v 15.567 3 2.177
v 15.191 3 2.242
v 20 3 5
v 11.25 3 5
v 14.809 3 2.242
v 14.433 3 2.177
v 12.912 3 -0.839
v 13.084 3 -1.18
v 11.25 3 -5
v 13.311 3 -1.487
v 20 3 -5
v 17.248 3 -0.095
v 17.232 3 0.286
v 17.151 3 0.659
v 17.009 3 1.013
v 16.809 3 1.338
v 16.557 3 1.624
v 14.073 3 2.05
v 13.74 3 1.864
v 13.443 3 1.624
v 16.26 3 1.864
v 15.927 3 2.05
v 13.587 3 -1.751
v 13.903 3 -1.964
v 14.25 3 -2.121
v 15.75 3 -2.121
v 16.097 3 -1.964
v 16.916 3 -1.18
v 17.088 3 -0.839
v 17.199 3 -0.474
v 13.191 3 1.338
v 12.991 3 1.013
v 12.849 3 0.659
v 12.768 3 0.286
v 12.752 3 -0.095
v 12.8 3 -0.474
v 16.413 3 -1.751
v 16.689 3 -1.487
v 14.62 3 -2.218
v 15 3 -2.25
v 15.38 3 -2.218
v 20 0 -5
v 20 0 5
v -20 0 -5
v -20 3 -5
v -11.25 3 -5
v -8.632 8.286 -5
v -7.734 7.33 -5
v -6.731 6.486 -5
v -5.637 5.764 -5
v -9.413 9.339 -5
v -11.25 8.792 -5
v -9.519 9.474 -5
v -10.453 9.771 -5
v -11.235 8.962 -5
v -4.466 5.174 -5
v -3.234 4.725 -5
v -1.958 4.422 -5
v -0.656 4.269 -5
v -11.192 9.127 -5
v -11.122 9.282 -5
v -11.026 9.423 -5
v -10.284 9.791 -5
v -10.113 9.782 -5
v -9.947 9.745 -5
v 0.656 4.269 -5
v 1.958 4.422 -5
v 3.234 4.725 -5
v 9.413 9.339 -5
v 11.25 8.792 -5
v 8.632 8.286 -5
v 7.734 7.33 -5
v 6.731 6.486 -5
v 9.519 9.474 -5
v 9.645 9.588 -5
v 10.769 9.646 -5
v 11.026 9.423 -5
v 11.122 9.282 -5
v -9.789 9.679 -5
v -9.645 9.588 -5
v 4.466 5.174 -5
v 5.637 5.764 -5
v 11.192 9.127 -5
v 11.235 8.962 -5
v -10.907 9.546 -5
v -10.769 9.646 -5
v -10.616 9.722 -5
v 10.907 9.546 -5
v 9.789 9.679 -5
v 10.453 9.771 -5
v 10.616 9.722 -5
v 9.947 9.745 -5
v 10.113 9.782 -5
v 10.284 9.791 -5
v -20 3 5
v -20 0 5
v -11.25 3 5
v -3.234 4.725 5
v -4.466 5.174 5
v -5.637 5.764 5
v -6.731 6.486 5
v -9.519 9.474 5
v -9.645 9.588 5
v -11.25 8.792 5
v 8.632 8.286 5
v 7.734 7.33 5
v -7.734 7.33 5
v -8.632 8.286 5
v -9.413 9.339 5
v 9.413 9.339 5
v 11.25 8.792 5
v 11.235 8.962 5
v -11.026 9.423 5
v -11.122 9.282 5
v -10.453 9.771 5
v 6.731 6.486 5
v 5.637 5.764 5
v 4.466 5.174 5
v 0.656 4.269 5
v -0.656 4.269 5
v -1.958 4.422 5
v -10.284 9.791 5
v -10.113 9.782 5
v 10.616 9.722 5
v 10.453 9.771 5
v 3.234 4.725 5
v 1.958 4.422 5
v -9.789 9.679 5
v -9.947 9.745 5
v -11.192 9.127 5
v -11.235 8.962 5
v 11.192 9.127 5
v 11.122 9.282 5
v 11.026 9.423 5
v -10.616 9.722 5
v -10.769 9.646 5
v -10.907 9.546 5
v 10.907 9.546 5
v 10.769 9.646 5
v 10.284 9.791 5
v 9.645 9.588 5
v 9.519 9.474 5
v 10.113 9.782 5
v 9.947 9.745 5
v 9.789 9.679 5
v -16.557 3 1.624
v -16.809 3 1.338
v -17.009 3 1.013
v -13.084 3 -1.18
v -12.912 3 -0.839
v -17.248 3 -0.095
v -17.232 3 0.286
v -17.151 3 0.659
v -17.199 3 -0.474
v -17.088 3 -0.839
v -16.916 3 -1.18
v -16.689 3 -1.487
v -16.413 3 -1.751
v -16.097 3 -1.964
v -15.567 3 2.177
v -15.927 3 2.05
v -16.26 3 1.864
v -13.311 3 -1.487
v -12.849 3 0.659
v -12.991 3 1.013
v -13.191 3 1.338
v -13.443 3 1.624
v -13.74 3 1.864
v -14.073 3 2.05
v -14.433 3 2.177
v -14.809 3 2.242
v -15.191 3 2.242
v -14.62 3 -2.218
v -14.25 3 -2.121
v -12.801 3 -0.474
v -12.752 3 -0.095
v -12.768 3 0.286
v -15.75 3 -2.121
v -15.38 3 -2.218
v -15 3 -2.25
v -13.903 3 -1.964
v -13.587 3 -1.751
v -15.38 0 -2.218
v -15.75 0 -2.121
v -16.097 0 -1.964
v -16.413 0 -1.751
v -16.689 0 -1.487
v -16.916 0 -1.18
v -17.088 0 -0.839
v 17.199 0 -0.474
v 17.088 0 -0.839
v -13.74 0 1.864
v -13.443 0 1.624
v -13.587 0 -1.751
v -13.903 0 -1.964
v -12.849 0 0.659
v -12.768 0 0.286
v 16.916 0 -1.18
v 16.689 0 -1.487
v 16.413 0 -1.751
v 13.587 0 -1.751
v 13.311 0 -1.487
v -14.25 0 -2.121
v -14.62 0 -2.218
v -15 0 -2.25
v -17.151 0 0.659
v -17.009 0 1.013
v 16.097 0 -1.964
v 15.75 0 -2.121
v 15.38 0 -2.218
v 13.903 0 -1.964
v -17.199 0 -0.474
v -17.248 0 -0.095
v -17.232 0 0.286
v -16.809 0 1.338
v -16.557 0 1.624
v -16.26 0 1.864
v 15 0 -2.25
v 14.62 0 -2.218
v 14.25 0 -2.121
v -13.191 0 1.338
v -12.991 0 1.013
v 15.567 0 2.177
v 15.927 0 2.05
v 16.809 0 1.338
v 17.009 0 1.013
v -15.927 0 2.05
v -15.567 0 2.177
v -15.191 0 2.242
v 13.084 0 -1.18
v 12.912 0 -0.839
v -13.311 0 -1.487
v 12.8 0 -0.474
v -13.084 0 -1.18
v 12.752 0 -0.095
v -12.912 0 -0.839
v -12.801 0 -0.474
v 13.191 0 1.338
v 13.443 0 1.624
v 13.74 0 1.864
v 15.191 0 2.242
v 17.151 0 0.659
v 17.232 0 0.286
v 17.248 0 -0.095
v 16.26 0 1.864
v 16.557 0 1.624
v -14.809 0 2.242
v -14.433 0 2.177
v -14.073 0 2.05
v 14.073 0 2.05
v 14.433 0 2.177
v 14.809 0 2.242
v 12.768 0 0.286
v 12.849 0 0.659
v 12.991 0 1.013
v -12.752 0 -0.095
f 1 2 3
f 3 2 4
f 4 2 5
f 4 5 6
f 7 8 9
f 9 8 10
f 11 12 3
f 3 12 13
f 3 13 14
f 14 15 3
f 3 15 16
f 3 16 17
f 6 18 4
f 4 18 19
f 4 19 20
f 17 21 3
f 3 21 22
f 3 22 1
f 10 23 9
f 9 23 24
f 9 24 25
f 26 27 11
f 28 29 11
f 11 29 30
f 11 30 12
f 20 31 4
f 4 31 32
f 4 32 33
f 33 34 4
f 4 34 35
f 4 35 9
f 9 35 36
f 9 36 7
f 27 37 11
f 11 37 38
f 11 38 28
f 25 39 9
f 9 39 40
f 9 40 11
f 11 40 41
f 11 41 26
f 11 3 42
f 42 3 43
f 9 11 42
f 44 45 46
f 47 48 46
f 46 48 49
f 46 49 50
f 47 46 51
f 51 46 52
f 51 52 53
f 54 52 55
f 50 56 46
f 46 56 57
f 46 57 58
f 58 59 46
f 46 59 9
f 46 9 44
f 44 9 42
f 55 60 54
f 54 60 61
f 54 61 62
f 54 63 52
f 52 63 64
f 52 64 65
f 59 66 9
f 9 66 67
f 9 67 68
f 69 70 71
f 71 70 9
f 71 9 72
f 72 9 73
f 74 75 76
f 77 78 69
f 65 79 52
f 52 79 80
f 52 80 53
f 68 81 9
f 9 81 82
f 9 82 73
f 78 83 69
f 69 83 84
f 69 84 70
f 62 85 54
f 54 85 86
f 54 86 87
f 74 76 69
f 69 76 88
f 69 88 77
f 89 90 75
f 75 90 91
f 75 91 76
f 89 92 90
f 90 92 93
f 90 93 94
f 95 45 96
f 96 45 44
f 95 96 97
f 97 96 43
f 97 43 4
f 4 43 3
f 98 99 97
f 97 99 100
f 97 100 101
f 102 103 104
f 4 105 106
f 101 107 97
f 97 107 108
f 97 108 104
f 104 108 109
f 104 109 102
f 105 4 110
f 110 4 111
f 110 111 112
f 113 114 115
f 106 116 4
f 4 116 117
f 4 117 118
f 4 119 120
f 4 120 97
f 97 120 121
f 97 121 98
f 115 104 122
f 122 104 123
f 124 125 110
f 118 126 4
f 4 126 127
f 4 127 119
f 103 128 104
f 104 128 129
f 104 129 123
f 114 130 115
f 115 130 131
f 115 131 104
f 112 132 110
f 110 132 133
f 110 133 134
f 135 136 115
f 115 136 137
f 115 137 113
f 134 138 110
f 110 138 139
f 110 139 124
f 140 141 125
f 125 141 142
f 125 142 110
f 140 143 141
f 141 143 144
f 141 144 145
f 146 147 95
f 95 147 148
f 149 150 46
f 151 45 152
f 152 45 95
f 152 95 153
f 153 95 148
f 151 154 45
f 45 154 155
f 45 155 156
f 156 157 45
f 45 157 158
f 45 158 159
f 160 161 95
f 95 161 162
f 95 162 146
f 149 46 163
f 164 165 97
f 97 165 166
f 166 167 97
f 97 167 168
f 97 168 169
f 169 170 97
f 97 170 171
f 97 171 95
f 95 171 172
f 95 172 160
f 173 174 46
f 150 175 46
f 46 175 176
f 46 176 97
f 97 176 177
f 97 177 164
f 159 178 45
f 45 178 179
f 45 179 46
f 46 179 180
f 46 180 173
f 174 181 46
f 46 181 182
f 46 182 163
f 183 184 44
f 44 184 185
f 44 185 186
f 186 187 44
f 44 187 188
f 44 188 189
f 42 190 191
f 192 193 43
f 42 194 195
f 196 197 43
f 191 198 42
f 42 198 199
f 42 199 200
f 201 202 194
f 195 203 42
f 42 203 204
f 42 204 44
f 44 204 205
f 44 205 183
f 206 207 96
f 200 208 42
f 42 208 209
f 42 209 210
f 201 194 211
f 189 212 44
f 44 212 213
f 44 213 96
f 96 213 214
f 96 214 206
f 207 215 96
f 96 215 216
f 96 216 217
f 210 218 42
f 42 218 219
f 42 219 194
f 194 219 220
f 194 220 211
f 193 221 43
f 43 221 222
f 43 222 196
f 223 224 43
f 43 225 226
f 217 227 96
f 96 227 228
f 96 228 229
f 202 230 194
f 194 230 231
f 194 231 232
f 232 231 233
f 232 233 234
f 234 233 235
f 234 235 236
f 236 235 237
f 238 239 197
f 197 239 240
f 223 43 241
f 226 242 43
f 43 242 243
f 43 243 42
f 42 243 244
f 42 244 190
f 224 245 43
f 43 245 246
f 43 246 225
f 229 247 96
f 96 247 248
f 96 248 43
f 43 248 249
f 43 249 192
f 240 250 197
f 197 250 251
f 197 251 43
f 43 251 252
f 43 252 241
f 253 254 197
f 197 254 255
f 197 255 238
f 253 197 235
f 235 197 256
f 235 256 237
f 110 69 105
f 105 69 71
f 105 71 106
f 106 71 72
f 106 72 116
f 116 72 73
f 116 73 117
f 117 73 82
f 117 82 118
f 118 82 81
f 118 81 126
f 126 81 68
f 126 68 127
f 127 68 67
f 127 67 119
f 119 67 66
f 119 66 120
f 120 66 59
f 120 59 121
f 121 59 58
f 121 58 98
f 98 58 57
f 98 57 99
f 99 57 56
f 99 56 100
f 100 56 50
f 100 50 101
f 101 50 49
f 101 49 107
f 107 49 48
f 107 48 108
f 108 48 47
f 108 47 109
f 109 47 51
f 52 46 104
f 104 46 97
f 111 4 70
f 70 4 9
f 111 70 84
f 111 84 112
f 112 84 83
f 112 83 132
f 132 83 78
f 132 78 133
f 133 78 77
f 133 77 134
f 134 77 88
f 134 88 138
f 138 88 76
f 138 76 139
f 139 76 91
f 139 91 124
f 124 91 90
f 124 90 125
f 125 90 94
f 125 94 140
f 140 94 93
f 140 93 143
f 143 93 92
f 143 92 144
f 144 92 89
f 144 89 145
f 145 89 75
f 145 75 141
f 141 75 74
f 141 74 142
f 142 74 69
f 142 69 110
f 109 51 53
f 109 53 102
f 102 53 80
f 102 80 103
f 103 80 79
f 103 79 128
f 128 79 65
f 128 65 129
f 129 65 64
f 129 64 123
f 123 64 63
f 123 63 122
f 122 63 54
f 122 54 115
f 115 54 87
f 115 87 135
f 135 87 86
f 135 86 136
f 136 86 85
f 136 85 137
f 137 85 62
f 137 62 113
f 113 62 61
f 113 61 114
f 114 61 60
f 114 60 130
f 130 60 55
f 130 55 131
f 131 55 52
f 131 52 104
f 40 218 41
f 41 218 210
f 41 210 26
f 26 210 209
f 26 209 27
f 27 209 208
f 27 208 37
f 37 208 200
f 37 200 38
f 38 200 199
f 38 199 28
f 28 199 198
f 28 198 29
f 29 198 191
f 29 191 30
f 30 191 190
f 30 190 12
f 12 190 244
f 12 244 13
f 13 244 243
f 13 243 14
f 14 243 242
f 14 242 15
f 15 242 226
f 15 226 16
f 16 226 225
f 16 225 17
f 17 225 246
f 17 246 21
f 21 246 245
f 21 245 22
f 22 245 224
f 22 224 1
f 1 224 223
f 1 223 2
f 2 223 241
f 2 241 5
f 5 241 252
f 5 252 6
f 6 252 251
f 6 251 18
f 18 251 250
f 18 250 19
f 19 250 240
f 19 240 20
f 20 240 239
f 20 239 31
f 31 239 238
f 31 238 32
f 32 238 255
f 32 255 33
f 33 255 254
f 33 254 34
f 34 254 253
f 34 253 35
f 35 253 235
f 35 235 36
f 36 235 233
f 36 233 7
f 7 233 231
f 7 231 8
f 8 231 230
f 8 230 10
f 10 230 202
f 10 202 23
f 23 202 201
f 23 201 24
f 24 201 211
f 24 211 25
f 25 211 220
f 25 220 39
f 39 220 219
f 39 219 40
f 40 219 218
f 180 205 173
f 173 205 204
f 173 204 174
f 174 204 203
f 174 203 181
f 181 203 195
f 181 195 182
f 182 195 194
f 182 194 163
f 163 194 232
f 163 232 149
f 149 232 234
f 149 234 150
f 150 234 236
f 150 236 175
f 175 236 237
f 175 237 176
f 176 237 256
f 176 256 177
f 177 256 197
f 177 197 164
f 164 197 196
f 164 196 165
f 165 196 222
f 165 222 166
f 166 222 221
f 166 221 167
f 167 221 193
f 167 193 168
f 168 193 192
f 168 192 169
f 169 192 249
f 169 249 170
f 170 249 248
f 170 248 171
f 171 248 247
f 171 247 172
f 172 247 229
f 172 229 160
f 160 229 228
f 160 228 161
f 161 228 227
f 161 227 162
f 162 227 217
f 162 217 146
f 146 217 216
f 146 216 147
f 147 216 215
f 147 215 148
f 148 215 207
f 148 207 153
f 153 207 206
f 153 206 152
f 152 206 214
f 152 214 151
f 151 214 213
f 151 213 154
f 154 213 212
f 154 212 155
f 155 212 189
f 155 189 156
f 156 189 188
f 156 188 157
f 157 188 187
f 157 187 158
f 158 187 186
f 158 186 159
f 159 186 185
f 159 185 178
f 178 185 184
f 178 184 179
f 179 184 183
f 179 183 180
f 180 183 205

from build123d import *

# Parameters (mm, degrees)
SKETCH1_W                = 40
SKETCH1_H                = 10
BOSS_EXTRUDE1_DEPTH      = 3
BOSS_EXTRUDE2_DEPTH      = 5
BOSS_EXTRUDE2_DEPTH_BACK = 5
FILLET1_START            = -6
FILLET1_DEPTH            = 12
M4_CLEARANCE_HOLE1_D     = 4.5


with BuildPart() as part:
    # Sketch1 → Boss-Extrude1 (new body)
    with BuildSketch(Plane(origin=(0, 0, 0), x_dir=(1, 0, 0), z_dir=(0, 1, 0))):
        Rectangle(SKETCH1_W, SKETCH1_H)
    extrude(amount=BOSS_EXTRUDE1_DEPTH)

    # Sketch2 → Boss-Extrude2 (add, two sides: drawn at the far end of the back side and taken through both)
    with BuildSketch(Plane.XY.offset(-BOSS_EXTRUDE2_DEPTH_BACK)):
        with BuildLine():
            Line((11.25, 15.5), (11.25, 3))
            Line((11.25, 3), (-11.25, 3))
            Line((-11.25, 3), (-11.25, 15.5))
            ThreePointArc((-11.25, 15.5), (0, 4.25), (11.25, 15.5))
        make_face()
    extrude(amount=BOSS_EXTRUDE2_DEPTH + BOSS_EXTRUDE2_DEPTH_BACK)

    # Fillet1: read off the stored shape, not the designer's step
    # Fillet1 outline → Fillet1 (cut)
    with BuildSketch(Plane.XY.offset(FILLET1_START)):
        with BuildLine():
            ThreePointArc((11.25, 15.5), (10.781042034, 12.285714286), (9.413265306, 9.339404552))
            ThreePointArc((9.413265306, 9.339404552), (10.535714285, 9.750110915), (11.25, 8.791796068))
            Line((11.25, 8.791796068), (11.25, 15.5))
        make_face()
        with BuildLine():
            ThreePointArc((-11.25, 8.791796068), (-10.535714285, 9.750110915), (-9.413265306, 9.339404552))
            ThreePointArc((-9.413265306, 9.339404552), (-10.781042034, 12.285714286), (-11.25, 15.5))
            Line((-11.25, 15.5), (-11.25, 8.791796068))
        make_face()
    extrude(amount=FILLET1_DEPTH, mode=Mode.SUBTRACT)

    # M4 Clearance Hole1 (through all)
    with Locations(Plane(origin=(0, 0, 0), x_dir=(-1, 0, 0), z_dir=(0, -1, 0))):
        with Locations((15, 0), (-15, 0)):
            Hole(M4_CLEARANCE_HOLE1_D / 2)


solid = part.part
